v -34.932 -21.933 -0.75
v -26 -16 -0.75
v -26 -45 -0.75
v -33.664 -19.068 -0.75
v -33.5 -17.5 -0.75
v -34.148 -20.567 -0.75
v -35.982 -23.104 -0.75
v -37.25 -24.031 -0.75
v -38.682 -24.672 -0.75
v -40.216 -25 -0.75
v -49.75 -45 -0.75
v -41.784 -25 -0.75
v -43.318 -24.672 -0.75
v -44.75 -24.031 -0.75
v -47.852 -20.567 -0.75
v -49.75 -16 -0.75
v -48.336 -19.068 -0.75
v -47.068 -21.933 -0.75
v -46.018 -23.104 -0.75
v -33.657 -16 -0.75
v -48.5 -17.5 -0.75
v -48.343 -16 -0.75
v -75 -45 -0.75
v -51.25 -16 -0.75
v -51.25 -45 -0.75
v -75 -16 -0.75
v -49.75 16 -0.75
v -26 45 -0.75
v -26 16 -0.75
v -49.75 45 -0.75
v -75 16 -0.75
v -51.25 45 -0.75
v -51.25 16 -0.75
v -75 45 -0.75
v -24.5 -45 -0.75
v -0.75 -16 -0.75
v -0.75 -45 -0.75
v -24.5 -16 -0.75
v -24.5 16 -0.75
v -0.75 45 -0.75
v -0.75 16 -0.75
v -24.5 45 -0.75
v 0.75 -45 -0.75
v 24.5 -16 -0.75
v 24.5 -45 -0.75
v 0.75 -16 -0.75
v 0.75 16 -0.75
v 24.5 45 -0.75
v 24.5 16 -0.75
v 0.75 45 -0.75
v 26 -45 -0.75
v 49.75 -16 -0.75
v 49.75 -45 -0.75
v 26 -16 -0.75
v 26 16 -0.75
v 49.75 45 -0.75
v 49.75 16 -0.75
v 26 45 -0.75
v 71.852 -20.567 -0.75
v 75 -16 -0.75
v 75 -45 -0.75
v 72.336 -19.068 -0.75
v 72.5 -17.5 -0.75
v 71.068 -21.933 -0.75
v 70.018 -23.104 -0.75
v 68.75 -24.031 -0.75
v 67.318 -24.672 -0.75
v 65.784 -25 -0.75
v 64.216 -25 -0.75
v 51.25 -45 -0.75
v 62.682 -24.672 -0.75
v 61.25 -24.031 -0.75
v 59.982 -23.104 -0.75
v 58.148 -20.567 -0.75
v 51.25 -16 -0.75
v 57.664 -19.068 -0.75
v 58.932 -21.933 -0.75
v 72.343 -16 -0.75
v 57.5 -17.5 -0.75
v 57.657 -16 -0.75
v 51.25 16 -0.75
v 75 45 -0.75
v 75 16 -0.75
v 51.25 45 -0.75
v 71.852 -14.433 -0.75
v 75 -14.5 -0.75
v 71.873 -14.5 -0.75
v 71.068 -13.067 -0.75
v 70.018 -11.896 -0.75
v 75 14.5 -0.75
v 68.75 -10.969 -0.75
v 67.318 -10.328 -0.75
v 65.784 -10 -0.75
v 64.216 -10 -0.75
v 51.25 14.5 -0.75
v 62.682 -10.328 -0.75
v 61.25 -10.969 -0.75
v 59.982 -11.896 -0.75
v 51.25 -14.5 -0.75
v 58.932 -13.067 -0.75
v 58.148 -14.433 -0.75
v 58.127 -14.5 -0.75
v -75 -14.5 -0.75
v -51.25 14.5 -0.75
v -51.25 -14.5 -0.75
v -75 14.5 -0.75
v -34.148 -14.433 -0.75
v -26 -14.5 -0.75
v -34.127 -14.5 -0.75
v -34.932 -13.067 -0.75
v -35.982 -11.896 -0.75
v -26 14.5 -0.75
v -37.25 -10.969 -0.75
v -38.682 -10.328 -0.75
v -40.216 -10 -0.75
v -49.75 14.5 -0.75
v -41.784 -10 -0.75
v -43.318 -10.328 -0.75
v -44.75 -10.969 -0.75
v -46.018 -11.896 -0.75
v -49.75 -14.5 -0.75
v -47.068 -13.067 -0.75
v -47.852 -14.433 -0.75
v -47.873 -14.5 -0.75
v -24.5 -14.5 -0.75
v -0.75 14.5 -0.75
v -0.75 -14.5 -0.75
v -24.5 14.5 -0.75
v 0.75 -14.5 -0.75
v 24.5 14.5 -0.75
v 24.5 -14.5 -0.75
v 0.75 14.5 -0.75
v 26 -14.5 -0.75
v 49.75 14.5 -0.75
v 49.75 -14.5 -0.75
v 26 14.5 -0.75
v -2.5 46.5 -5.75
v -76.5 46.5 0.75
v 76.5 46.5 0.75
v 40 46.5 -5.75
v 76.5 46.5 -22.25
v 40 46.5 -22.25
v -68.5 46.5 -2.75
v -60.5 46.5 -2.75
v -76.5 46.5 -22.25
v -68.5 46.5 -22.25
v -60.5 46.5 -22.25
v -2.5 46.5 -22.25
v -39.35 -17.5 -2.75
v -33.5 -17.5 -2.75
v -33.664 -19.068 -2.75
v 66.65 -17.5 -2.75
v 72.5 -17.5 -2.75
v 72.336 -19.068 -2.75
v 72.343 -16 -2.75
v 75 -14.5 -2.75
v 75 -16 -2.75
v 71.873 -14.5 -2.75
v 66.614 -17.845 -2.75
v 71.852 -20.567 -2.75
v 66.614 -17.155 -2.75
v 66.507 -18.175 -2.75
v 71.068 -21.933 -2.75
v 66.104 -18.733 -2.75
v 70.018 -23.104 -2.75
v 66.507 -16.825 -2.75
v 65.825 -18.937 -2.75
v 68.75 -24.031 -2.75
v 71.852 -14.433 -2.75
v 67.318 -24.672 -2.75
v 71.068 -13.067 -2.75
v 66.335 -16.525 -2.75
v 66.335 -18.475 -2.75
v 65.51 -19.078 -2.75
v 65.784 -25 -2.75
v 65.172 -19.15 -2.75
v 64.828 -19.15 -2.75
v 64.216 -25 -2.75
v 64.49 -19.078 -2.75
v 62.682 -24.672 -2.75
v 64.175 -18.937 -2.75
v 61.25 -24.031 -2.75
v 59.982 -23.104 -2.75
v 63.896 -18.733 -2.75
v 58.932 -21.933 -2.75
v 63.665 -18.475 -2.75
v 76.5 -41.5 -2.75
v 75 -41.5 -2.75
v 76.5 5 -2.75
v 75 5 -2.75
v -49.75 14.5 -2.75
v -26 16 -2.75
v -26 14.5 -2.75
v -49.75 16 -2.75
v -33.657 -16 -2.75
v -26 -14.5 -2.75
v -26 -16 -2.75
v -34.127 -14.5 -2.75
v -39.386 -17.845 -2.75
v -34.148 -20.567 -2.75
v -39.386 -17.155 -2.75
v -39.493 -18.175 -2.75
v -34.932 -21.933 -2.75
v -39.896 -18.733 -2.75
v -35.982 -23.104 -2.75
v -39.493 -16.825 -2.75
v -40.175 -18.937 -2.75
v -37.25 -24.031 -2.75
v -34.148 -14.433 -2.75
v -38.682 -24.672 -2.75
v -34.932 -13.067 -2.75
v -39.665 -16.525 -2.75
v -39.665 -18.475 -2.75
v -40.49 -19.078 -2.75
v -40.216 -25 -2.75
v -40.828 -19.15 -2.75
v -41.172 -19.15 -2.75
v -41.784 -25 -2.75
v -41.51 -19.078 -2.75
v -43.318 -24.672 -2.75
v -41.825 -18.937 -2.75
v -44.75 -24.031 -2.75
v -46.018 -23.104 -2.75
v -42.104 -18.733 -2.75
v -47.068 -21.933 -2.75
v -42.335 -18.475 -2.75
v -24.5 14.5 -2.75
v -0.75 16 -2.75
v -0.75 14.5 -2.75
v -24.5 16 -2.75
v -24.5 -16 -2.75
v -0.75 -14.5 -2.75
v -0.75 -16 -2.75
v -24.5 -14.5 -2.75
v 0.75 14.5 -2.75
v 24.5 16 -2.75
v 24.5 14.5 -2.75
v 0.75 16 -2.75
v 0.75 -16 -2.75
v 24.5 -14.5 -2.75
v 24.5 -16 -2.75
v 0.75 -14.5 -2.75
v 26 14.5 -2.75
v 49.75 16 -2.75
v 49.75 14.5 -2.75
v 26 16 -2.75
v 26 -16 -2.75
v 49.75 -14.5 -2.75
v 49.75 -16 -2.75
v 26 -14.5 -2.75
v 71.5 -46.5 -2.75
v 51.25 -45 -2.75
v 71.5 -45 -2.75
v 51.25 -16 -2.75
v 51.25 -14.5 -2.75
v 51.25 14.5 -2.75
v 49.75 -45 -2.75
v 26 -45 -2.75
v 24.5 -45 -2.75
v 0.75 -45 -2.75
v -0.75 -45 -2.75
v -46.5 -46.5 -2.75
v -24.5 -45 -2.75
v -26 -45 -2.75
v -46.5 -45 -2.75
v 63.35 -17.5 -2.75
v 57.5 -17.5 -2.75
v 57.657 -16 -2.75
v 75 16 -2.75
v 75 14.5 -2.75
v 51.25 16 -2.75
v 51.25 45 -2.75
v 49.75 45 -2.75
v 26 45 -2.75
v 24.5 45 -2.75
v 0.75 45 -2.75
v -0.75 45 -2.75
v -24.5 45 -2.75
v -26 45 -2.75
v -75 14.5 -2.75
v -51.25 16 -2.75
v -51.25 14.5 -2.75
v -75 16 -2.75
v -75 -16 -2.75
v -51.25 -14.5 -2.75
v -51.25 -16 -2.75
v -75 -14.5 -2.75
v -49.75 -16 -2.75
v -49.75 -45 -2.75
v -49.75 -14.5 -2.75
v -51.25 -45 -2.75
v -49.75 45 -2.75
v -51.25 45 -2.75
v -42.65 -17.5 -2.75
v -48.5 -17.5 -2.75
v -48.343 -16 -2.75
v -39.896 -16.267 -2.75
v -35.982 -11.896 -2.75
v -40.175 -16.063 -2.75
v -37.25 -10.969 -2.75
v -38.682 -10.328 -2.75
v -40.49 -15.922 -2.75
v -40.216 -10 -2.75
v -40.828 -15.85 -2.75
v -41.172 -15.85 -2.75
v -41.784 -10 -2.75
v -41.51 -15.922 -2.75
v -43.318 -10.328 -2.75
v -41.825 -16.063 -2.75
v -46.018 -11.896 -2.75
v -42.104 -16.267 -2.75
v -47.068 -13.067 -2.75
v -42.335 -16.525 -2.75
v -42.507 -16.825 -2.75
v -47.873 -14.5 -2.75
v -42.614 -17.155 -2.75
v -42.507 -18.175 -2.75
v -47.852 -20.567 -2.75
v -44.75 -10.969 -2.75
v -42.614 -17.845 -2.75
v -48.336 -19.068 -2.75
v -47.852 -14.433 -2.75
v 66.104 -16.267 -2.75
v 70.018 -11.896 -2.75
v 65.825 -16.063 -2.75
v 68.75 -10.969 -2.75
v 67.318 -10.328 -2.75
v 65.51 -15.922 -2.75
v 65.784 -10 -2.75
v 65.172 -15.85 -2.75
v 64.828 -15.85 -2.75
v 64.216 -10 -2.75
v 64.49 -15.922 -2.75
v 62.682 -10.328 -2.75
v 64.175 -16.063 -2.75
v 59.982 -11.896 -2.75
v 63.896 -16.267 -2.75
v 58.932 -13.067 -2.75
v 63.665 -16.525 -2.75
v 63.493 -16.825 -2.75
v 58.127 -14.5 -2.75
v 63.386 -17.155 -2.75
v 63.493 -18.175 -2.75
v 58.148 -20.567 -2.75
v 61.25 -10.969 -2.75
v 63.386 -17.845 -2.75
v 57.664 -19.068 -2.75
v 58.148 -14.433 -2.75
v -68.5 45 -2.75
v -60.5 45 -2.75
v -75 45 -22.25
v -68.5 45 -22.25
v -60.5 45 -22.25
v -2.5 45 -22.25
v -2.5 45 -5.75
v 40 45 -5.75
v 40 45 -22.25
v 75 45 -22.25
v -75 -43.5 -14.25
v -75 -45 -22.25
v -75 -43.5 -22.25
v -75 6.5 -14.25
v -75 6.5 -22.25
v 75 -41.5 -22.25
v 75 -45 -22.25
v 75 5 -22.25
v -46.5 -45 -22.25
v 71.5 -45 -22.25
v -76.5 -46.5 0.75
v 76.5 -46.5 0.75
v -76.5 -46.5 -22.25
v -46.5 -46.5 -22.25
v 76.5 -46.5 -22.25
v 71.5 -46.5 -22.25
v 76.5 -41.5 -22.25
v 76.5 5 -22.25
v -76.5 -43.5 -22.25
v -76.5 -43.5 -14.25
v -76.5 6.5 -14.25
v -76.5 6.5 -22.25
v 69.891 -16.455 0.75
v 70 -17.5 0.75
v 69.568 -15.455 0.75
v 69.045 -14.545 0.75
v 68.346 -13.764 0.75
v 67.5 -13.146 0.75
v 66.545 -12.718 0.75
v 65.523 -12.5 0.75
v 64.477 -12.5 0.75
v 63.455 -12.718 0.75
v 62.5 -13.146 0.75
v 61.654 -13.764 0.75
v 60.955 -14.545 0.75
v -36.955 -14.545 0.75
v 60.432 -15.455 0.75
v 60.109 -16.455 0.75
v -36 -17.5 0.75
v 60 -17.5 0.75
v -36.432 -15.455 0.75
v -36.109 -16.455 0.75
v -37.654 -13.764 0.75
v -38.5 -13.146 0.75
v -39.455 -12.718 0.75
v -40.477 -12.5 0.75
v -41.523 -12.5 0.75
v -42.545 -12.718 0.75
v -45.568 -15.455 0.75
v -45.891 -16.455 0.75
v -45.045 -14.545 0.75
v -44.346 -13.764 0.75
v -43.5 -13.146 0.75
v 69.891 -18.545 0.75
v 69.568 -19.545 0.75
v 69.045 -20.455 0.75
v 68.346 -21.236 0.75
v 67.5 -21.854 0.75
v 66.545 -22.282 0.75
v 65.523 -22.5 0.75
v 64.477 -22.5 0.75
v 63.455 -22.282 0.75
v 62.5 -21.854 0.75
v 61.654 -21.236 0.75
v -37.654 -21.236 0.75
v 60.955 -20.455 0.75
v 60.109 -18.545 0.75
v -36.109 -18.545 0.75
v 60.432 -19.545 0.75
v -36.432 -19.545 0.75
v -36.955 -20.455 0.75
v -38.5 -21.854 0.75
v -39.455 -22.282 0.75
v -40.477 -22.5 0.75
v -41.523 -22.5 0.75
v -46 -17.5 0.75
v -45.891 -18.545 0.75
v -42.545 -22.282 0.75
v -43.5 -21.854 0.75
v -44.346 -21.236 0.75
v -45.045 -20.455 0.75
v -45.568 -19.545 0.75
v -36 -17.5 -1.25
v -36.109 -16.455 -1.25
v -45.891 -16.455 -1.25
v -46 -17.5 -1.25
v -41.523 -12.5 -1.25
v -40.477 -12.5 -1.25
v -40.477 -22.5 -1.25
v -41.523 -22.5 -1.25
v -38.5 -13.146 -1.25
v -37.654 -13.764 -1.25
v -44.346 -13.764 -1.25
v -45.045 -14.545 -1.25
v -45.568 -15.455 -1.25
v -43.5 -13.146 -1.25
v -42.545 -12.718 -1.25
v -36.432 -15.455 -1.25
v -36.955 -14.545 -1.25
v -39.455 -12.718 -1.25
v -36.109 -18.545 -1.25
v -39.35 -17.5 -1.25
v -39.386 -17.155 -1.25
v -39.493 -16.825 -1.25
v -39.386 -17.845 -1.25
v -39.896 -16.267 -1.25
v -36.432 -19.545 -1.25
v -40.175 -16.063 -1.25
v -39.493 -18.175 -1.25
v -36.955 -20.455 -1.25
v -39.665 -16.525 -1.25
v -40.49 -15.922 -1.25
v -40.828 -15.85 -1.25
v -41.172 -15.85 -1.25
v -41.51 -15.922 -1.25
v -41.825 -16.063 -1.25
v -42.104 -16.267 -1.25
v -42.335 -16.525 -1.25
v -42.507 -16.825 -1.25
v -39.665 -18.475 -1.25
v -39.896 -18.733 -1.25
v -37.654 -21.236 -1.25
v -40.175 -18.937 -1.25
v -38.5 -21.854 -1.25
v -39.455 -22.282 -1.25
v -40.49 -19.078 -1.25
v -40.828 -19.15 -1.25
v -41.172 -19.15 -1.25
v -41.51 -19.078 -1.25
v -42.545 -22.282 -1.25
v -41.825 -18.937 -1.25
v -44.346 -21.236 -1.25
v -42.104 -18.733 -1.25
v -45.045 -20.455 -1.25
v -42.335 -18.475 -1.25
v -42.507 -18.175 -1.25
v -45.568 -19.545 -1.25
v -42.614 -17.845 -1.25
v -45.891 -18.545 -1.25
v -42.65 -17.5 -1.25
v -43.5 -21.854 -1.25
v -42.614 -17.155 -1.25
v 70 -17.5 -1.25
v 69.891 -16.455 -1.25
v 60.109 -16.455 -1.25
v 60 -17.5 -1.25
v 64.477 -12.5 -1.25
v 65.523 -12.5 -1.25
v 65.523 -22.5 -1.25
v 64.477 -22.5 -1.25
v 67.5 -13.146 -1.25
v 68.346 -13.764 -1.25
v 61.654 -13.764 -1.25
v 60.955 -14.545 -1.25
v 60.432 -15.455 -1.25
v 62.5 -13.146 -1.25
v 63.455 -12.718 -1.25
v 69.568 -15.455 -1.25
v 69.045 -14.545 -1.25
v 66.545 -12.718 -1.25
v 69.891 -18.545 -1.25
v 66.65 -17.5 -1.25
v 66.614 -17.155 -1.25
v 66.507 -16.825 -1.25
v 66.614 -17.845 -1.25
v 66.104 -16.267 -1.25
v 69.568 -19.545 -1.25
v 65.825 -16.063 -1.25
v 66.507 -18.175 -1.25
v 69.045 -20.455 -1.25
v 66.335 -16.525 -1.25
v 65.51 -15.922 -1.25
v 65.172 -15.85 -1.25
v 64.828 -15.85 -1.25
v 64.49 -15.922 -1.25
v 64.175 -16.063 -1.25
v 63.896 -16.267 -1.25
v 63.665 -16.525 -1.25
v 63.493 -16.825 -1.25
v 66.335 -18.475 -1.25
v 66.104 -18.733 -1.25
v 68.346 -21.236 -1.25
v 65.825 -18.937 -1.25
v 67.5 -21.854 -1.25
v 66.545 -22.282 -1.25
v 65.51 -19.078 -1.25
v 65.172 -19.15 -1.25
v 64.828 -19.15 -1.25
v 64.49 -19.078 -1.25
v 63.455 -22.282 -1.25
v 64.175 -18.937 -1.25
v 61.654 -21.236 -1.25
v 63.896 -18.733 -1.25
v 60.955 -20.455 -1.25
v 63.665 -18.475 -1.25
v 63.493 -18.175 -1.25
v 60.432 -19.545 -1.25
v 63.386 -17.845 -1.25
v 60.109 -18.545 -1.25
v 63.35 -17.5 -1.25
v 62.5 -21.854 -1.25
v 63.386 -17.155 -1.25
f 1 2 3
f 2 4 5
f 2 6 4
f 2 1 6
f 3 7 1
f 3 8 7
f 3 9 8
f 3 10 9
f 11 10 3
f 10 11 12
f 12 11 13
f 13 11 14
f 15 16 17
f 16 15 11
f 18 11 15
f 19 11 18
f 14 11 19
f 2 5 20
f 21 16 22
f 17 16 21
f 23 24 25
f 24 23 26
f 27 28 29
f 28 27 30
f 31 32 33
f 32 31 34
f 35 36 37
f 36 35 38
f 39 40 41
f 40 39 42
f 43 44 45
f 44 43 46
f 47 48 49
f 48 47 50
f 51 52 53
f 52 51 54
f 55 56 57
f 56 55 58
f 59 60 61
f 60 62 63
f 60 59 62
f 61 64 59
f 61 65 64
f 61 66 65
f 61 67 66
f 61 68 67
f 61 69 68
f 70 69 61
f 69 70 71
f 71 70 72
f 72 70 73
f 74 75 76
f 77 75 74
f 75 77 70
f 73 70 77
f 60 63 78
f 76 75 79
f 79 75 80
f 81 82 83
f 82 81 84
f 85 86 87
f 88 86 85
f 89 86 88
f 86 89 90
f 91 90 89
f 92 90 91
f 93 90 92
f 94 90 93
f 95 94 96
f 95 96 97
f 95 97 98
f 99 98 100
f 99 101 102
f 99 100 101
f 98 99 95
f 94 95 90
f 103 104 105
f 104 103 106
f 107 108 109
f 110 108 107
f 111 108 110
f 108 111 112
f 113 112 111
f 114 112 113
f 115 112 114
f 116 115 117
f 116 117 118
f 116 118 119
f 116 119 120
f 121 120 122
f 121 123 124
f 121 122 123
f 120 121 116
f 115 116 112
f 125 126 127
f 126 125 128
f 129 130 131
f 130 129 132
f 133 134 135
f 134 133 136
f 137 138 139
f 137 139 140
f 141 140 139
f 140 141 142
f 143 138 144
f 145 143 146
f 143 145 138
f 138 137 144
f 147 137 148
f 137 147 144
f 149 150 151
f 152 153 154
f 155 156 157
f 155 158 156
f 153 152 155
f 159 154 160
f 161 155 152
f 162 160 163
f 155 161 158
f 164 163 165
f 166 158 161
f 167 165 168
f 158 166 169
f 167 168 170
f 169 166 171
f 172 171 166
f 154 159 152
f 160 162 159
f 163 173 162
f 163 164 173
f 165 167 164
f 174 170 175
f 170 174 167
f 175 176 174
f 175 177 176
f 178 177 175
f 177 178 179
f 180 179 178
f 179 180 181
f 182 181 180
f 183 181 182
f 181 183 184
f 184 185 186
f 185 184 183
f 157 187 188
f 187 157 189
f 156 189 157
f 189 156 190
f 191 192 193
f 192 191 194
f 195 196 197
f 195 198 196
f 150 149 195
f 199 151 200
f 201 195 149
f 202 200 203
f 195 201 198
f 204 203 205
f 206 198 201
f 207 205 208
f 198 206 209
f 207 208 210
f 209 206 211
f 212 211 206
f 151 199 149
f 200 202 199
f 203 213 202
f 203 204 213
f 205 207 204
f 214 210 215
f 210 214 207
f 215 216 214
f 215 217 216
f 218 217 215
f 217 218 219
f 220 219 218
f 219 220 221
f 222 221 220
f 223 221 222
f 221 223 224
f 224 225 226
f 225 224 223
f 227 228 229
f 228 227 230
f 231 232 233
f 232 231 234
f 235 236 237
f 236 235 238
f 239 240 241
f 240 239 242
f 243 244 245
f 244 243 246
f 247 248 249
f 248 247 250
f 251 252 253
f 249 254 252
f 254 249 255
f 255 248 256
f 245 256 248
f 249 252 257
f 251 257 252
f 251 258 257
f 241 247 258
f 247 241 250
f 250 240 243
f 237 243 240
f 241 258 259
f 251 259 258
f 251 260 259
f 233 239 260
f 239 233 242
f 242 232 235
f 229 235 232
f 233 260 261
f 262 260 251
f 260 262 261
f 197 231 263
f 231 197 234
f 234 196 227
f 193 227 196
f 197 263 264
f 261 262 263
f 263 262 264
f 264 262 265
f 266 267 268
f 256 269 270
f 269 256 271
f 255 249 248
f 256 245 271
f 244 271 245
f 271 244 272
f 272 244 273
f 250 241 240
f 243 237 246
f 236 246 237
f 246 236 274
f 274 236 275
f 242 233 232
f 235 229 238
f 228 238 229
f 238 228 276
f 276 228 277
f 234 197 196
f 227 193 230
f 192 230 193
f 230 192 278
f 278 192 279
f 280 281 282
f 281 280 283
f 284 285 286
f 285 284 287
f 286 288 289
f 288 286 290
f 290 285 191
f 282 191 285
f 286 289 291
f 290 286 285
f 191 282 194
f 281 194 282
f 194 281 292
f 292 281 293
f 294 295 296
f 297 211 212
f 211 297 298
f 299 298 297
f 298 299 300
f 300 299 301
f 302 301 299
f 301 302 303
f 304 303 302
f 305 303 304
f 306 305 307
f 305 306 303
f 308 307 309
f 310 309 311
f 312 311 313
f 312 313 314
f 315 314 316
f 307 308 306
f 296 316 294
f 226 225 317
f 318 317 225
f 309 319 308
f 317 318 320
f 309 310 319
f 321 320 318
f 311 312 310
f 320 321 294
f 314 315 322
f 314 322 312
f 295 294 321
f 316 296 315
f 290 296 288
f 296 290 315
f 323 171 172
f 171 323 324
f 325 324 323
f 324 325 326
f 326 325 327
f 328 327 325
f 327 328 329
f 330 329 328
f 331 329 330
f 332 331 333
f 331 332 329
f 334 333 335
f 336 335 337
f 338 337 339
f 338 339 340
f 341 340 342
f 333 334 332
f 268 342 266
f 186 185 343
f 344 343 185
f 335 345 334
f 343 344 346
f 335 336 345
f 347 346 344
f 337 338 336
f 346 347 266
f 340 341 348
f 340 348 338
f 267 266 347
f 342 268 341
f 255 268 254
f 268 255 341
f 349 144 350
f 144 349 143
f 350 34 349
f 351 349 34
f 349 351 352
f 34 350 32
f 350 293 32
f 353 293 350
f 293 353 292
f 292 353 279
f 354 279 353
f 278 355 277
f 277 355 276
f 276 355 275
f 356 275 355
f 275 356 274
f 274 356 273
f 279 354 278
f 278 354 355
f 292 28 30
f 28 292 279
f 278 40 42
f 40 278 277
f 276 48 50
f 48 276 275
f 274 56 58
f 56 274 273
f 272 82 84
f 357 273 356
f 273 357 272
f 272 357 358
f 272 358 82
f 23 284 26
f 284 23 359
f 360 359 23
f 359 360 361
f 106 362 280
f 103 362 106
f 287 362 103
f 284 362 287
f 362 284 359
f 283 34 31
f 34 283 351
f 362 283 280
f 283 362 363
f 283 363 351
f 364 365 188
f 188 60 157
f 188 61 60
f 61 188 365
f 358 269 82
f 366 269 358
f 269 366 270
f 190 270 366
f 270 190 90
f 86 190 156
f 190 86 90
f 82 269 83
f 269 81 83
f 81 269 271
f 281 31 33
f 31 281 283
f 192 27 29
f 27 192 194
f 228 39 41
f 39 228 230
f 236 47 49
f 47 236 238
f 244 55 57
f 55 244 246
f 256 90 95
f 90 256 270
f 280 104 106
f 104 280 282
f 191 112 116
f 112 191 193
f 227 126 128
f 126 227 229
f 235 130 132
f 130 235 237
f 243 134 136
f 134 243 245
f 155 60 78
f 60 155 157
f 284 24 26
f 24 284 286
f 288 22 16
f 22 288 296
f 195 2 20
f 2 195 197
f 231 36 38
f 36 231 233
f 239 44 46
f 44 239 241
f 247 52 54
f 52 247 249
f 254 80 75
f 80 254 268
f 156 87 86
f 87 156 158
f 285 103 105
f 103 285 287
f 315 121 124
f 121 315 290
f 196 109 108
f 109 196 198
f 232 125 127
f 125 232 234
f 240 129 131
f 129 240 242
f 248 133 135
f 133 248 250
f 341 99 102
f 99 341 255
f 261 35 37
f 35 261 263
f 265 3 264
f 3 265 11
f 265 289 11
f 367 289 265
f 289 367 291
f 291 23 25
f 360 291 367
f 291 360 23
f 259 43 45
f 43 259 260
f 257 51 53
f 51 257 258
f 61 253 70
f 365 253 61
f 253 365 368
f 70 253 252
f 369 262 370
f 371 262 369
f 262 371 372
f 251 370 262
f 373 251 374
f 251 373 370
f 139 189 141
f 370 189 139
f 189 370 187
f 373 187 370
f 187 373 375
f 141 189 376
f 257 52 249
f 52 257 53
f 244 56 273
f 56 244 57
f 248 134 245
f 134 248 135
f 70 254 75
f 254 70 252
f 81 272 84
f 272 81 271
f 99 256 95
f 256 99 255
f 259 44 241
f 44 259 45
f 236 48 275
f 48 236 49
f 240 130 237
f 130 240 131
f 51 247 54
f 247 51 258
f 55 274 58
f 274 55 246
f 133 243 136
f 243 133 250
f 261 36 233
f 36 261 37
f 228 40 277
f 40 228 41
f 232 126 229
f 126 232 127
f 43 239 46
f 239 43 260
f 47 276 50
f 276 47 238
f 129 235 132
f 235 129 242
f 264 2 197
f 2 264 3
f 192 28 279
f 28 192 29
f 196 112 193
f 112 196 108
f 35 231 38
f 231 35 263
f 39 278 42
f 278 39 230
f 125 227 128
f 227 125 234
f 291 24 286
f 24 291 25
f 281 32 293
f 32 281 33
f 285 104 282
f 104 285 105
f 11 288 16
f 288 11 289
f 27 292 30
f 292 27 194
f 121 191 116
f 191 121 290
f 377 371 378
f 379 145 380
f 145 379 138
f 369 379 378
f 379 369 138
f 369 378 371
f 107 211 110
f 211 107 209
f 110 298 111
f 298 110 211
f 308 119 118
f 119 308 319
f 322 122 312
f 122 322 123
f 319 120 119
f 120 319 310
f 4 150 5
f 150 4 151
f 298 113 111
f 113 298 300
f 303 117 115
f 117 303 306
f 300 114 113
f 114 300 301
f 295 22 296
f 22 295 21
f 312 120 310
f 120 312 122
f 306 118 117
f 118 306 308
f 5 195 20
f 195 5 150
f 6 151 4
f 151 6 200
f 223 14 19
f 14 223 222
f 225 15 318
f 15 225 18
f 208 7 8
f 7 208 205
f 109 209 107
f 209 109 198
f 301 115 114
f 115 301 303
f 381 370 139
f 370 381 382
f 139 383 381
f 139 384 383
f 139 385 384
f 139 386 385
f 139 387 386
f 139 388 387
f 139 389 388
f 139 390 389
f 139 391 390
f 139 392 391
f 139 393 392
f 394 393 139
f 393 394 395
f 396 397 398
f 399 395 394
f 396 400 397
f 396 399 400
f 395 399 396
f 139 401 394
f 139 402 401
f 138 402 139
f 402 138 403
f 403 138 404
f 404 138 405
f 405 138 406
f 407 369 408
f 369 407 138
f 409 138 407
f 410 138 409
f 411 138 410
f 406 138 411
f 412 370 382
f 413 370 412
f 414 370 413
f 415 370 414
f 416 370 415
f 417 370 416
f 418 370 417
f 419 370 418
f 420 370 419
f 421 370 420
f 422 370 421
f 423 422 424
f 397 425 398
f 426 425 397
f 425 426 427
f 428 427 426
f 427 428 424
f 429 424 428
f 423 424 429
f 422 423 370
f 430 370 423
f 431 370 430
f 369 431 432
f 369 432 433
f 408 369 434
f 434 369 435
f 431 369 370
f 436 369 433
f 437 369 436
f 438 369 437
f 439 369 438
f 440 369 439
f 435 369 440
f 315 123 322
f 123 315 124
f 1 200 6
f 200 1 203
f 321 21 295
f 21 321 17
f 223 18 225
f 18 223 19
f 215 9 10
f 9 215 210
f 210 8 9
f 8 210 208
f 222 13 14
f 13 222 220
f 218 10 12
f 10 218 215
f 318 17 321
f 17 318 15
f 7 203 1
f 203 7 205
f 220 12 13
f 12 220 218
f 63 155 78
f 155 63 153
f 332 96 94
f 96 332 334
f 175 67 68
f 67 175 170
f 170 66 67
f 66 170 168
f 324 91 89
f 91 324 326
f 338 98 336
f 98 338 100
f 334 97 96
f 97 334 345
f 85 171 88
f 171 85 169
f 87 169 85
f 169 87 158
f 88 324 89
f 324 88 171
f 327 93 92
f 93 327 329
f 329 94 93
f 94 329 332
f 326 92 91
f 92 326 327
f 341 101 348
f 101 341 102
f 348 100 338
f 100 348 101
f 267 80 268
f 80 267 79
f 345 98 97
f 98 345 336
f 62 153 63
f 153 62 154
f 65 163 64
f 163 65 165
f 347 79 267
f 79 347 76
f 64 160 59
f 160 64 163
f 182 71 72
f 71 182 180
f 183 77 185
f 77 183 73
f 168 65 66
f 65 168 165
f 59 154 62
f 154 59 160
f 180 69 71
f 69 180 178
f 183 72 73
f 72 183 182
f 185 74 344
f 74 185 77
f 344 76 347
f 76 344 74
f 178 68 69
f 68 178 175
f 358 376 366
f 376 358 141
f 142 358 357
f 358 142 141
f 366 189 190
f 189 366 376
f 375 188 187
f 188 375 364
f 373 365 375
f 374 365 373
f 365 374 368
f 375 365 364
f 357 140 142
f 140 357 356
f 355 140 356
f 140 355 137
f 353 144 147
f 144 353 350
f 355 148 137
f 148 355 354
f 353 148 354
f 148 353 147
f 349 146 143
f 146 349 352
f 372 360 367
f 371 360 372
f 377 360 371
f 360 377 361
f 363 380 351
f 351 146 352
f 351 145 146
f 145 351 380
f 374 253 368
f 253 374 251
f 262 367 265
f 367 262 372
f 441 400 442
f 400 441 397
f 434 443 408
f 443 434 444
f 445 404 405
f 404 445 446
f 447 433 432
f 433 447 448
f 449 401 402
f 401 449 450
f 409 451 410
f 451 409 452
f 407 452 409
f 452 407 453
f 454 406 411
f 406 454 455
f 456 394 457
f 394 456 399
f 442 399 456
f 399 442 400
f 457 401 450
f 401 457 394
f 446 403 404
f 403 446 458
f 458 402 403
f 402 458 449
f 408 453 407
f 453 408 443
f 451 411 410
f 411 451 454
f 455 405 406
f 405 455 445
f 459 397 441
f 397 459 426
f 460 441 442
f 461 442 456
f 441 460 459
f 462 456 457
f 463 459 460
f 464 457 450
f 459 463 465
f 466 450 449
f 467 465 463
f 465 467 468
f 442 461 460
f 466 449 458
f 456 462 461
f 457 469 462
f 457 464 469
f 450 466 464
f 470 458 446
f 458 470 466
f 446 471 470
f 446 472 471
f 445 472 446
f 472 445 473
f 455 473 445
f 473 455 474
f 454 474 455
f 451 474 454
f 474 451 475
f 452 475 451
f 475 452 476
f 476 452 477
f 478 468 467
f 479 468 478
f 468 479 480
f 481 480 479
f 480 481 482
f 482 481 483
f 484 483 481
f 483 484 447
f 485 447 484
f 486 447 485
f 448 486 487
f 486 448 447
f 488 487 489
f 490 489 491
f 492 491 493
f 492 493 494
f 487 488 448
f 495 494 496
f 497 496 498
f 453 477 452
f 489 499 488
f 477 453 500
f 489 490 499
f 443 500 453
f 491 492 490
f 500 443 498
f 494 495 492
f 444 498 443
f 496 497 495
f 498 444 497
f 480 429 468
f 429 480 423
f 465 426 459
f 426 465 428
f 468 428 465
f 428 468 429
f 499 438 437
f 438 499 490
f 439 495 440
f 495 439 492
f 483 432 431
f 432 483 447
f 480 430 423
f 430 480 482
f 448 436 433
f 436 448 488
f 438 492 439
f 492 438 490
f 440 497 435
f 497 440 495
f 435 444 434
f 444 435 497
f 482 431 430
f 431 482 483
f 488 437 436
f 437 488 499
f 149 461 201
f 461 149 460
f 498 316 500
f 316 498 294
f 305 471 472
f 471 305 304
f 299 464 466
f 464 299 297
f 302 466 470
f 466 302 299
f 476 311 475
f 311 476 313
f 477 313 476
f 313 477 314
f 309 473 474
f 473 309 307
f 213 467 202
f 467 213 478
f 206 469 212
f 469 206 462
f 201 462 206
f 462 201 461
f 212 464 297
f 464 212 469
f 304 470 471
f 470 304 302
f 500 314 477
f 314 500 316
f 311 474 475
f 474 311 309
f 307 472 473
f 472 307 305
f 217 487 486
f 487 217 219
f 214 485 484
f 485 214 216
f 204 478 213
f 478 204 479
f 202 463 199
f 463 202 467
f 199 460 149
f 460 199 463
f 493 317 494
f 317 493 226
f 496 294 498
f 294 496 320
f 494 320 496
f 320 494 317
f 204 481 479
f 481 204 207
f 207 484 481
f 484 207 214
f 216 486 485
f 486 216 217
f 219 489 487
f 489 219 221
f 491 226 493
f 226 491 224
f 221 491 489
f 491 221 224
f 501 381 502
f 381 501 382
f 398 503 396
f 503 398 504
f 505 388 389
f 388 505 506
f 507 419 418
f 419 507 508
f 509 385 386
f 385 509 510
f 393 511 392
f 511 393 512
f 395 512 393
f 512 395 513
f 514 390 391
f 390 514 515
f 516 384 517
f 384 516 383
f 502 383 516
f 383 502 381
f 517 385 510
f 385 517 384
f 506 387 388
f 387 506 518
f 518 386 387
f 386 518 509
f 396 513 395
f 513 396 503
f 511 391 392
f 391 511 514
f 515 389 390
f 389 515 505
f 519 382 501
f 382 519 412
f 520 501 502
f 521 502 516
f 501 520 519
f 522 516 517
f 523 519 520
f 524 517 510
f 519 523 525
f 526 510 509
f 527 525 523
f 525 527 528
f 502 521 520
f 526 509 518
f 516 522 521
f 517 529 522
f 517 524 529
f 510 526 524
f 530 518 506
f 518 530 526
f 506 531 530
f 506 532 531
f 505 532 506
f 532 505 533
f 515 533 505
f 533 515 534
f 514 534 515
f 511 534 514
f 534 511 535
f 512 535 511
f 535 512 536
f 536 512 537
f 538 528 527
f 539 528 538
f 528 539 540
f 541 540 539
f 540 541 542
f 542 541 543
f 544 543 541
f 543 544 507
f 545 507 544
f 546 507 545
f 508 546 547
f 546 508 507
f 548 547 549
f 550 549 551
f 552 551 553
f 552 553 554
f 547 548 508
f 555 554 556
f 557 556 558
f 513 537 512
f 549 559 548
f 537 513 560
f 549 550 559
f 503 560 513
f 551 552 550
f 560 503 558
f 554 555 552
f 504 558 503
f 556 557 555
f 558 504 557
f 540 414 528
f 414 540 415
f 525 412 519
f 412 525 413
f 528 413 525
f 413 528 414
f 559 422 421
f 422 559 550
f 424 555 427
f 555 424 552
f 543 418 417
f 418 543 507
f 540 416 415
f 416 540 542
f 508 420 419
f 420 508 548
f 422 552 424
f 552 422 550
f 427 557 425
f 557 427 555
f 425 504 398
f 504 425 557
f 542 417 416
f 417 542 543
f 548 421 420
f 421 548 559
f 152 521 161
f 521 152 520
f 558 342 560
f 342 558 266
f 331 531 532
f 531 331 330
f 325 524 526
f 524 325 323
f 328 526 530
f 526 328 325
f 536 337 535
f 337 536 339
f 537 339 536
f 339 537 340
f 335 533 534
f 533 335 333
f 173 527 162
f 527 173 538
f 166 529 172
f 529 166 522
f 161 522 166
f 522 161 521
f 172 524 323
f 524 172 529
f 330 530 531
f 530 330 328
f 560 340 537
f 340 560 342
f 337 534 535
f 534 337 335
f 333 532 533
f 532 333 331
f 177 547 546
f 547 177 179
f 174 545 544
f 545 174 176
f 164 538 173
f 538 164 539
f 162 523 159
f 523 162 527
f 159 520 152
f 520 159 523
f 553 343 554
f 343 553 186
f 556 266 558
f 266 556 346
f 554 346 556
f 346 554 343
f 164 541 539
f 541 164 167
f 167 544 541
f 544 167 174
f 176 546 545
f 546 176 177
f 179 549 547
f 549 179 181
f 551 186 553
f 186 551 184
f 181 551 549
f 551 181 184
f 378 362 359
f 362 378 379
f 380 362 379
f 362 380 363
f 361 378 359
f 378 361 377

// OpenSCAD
include <../../lib/relativity.scad/relativity.scad> // https://github.com/davidson16807/relativity.scad

thickness = 1.5;
rib_size = 2;
depth = 21 + rib_size;
height = 90;
$fn = 30;

module screw_hole() {
    rod(d=15, h=thickness+rib_size, anchor=[0,0,1]);
    rod(d=10, h=rib_size, anchor=[0,0,1], $class="hole");
    rod(d=3.3, h=10, anchor=[0,0,0], $class="hole");
}

module main() {
  differed("hole", "not(hole)") 
  box([150+thickness*2, height+thickness*2, thickness]) {
    // right
    align(x+y+z) color("lightblue") box([thickness, 40+thickness, depth], anchor=x+y+z);
    align(x-y+z) color("lightblue") box([thickness, 5, depth], anchor=x-y+z);

    // top
    align(x+y+z) color("lightgreen") box([35+thickness, thickness, depth], anchor=x+y+z);
    align(x+y-z) color("lightgreen") box([35+45+thickness, thickness, 5], anchor=x+y+z);
    align(-x+y+z) color("lightgreen") translated(x*16) box([58, thickness, depth], anchor=-x+y+z);
    align(-x+y+z) color("lightgreen") box([8, thickness, depth], anchor=-x+y+z);

    // left
    align(-x+y+z) color("lightblue") box([thickness, height+thickness, depth], anchor=-x+y+z);
    align(-x+y+z) translated(-40*y-(depth-8)*z) box([thickness,height-40, 8], anchor=-x+y+z, $class="hole");

    // bottom
    align(x-y+z) color("lightgreen") box([5, thickness, depth], anchor=x-y+z); 
    align(-x-y+z) color("lightgreen") box([30, thickness, depth], anchor=-x-y+z); 

    // rib
    align(y-z) translated(-y*30.5, n=[0:3]) box([150, thickness, rib_size], anchor=y+z);
    align(x-z) translated(-x*25.25, n=[0:6]) box([thickness, height, rib_size], anchor=x+z);

    // support
    // align(x+z) translated(-z*depth) box([thickness, height, 1], anchor=x-z);

    // screw holes
    align(-x+y+z) 
      translated(x*(34+thickness)-y*(6.5+56+thickness)) {
        children();
        translated(x*106) children();
      }
  }
}

// rotated(-x*90)
main() {
  screw_hole();
}
